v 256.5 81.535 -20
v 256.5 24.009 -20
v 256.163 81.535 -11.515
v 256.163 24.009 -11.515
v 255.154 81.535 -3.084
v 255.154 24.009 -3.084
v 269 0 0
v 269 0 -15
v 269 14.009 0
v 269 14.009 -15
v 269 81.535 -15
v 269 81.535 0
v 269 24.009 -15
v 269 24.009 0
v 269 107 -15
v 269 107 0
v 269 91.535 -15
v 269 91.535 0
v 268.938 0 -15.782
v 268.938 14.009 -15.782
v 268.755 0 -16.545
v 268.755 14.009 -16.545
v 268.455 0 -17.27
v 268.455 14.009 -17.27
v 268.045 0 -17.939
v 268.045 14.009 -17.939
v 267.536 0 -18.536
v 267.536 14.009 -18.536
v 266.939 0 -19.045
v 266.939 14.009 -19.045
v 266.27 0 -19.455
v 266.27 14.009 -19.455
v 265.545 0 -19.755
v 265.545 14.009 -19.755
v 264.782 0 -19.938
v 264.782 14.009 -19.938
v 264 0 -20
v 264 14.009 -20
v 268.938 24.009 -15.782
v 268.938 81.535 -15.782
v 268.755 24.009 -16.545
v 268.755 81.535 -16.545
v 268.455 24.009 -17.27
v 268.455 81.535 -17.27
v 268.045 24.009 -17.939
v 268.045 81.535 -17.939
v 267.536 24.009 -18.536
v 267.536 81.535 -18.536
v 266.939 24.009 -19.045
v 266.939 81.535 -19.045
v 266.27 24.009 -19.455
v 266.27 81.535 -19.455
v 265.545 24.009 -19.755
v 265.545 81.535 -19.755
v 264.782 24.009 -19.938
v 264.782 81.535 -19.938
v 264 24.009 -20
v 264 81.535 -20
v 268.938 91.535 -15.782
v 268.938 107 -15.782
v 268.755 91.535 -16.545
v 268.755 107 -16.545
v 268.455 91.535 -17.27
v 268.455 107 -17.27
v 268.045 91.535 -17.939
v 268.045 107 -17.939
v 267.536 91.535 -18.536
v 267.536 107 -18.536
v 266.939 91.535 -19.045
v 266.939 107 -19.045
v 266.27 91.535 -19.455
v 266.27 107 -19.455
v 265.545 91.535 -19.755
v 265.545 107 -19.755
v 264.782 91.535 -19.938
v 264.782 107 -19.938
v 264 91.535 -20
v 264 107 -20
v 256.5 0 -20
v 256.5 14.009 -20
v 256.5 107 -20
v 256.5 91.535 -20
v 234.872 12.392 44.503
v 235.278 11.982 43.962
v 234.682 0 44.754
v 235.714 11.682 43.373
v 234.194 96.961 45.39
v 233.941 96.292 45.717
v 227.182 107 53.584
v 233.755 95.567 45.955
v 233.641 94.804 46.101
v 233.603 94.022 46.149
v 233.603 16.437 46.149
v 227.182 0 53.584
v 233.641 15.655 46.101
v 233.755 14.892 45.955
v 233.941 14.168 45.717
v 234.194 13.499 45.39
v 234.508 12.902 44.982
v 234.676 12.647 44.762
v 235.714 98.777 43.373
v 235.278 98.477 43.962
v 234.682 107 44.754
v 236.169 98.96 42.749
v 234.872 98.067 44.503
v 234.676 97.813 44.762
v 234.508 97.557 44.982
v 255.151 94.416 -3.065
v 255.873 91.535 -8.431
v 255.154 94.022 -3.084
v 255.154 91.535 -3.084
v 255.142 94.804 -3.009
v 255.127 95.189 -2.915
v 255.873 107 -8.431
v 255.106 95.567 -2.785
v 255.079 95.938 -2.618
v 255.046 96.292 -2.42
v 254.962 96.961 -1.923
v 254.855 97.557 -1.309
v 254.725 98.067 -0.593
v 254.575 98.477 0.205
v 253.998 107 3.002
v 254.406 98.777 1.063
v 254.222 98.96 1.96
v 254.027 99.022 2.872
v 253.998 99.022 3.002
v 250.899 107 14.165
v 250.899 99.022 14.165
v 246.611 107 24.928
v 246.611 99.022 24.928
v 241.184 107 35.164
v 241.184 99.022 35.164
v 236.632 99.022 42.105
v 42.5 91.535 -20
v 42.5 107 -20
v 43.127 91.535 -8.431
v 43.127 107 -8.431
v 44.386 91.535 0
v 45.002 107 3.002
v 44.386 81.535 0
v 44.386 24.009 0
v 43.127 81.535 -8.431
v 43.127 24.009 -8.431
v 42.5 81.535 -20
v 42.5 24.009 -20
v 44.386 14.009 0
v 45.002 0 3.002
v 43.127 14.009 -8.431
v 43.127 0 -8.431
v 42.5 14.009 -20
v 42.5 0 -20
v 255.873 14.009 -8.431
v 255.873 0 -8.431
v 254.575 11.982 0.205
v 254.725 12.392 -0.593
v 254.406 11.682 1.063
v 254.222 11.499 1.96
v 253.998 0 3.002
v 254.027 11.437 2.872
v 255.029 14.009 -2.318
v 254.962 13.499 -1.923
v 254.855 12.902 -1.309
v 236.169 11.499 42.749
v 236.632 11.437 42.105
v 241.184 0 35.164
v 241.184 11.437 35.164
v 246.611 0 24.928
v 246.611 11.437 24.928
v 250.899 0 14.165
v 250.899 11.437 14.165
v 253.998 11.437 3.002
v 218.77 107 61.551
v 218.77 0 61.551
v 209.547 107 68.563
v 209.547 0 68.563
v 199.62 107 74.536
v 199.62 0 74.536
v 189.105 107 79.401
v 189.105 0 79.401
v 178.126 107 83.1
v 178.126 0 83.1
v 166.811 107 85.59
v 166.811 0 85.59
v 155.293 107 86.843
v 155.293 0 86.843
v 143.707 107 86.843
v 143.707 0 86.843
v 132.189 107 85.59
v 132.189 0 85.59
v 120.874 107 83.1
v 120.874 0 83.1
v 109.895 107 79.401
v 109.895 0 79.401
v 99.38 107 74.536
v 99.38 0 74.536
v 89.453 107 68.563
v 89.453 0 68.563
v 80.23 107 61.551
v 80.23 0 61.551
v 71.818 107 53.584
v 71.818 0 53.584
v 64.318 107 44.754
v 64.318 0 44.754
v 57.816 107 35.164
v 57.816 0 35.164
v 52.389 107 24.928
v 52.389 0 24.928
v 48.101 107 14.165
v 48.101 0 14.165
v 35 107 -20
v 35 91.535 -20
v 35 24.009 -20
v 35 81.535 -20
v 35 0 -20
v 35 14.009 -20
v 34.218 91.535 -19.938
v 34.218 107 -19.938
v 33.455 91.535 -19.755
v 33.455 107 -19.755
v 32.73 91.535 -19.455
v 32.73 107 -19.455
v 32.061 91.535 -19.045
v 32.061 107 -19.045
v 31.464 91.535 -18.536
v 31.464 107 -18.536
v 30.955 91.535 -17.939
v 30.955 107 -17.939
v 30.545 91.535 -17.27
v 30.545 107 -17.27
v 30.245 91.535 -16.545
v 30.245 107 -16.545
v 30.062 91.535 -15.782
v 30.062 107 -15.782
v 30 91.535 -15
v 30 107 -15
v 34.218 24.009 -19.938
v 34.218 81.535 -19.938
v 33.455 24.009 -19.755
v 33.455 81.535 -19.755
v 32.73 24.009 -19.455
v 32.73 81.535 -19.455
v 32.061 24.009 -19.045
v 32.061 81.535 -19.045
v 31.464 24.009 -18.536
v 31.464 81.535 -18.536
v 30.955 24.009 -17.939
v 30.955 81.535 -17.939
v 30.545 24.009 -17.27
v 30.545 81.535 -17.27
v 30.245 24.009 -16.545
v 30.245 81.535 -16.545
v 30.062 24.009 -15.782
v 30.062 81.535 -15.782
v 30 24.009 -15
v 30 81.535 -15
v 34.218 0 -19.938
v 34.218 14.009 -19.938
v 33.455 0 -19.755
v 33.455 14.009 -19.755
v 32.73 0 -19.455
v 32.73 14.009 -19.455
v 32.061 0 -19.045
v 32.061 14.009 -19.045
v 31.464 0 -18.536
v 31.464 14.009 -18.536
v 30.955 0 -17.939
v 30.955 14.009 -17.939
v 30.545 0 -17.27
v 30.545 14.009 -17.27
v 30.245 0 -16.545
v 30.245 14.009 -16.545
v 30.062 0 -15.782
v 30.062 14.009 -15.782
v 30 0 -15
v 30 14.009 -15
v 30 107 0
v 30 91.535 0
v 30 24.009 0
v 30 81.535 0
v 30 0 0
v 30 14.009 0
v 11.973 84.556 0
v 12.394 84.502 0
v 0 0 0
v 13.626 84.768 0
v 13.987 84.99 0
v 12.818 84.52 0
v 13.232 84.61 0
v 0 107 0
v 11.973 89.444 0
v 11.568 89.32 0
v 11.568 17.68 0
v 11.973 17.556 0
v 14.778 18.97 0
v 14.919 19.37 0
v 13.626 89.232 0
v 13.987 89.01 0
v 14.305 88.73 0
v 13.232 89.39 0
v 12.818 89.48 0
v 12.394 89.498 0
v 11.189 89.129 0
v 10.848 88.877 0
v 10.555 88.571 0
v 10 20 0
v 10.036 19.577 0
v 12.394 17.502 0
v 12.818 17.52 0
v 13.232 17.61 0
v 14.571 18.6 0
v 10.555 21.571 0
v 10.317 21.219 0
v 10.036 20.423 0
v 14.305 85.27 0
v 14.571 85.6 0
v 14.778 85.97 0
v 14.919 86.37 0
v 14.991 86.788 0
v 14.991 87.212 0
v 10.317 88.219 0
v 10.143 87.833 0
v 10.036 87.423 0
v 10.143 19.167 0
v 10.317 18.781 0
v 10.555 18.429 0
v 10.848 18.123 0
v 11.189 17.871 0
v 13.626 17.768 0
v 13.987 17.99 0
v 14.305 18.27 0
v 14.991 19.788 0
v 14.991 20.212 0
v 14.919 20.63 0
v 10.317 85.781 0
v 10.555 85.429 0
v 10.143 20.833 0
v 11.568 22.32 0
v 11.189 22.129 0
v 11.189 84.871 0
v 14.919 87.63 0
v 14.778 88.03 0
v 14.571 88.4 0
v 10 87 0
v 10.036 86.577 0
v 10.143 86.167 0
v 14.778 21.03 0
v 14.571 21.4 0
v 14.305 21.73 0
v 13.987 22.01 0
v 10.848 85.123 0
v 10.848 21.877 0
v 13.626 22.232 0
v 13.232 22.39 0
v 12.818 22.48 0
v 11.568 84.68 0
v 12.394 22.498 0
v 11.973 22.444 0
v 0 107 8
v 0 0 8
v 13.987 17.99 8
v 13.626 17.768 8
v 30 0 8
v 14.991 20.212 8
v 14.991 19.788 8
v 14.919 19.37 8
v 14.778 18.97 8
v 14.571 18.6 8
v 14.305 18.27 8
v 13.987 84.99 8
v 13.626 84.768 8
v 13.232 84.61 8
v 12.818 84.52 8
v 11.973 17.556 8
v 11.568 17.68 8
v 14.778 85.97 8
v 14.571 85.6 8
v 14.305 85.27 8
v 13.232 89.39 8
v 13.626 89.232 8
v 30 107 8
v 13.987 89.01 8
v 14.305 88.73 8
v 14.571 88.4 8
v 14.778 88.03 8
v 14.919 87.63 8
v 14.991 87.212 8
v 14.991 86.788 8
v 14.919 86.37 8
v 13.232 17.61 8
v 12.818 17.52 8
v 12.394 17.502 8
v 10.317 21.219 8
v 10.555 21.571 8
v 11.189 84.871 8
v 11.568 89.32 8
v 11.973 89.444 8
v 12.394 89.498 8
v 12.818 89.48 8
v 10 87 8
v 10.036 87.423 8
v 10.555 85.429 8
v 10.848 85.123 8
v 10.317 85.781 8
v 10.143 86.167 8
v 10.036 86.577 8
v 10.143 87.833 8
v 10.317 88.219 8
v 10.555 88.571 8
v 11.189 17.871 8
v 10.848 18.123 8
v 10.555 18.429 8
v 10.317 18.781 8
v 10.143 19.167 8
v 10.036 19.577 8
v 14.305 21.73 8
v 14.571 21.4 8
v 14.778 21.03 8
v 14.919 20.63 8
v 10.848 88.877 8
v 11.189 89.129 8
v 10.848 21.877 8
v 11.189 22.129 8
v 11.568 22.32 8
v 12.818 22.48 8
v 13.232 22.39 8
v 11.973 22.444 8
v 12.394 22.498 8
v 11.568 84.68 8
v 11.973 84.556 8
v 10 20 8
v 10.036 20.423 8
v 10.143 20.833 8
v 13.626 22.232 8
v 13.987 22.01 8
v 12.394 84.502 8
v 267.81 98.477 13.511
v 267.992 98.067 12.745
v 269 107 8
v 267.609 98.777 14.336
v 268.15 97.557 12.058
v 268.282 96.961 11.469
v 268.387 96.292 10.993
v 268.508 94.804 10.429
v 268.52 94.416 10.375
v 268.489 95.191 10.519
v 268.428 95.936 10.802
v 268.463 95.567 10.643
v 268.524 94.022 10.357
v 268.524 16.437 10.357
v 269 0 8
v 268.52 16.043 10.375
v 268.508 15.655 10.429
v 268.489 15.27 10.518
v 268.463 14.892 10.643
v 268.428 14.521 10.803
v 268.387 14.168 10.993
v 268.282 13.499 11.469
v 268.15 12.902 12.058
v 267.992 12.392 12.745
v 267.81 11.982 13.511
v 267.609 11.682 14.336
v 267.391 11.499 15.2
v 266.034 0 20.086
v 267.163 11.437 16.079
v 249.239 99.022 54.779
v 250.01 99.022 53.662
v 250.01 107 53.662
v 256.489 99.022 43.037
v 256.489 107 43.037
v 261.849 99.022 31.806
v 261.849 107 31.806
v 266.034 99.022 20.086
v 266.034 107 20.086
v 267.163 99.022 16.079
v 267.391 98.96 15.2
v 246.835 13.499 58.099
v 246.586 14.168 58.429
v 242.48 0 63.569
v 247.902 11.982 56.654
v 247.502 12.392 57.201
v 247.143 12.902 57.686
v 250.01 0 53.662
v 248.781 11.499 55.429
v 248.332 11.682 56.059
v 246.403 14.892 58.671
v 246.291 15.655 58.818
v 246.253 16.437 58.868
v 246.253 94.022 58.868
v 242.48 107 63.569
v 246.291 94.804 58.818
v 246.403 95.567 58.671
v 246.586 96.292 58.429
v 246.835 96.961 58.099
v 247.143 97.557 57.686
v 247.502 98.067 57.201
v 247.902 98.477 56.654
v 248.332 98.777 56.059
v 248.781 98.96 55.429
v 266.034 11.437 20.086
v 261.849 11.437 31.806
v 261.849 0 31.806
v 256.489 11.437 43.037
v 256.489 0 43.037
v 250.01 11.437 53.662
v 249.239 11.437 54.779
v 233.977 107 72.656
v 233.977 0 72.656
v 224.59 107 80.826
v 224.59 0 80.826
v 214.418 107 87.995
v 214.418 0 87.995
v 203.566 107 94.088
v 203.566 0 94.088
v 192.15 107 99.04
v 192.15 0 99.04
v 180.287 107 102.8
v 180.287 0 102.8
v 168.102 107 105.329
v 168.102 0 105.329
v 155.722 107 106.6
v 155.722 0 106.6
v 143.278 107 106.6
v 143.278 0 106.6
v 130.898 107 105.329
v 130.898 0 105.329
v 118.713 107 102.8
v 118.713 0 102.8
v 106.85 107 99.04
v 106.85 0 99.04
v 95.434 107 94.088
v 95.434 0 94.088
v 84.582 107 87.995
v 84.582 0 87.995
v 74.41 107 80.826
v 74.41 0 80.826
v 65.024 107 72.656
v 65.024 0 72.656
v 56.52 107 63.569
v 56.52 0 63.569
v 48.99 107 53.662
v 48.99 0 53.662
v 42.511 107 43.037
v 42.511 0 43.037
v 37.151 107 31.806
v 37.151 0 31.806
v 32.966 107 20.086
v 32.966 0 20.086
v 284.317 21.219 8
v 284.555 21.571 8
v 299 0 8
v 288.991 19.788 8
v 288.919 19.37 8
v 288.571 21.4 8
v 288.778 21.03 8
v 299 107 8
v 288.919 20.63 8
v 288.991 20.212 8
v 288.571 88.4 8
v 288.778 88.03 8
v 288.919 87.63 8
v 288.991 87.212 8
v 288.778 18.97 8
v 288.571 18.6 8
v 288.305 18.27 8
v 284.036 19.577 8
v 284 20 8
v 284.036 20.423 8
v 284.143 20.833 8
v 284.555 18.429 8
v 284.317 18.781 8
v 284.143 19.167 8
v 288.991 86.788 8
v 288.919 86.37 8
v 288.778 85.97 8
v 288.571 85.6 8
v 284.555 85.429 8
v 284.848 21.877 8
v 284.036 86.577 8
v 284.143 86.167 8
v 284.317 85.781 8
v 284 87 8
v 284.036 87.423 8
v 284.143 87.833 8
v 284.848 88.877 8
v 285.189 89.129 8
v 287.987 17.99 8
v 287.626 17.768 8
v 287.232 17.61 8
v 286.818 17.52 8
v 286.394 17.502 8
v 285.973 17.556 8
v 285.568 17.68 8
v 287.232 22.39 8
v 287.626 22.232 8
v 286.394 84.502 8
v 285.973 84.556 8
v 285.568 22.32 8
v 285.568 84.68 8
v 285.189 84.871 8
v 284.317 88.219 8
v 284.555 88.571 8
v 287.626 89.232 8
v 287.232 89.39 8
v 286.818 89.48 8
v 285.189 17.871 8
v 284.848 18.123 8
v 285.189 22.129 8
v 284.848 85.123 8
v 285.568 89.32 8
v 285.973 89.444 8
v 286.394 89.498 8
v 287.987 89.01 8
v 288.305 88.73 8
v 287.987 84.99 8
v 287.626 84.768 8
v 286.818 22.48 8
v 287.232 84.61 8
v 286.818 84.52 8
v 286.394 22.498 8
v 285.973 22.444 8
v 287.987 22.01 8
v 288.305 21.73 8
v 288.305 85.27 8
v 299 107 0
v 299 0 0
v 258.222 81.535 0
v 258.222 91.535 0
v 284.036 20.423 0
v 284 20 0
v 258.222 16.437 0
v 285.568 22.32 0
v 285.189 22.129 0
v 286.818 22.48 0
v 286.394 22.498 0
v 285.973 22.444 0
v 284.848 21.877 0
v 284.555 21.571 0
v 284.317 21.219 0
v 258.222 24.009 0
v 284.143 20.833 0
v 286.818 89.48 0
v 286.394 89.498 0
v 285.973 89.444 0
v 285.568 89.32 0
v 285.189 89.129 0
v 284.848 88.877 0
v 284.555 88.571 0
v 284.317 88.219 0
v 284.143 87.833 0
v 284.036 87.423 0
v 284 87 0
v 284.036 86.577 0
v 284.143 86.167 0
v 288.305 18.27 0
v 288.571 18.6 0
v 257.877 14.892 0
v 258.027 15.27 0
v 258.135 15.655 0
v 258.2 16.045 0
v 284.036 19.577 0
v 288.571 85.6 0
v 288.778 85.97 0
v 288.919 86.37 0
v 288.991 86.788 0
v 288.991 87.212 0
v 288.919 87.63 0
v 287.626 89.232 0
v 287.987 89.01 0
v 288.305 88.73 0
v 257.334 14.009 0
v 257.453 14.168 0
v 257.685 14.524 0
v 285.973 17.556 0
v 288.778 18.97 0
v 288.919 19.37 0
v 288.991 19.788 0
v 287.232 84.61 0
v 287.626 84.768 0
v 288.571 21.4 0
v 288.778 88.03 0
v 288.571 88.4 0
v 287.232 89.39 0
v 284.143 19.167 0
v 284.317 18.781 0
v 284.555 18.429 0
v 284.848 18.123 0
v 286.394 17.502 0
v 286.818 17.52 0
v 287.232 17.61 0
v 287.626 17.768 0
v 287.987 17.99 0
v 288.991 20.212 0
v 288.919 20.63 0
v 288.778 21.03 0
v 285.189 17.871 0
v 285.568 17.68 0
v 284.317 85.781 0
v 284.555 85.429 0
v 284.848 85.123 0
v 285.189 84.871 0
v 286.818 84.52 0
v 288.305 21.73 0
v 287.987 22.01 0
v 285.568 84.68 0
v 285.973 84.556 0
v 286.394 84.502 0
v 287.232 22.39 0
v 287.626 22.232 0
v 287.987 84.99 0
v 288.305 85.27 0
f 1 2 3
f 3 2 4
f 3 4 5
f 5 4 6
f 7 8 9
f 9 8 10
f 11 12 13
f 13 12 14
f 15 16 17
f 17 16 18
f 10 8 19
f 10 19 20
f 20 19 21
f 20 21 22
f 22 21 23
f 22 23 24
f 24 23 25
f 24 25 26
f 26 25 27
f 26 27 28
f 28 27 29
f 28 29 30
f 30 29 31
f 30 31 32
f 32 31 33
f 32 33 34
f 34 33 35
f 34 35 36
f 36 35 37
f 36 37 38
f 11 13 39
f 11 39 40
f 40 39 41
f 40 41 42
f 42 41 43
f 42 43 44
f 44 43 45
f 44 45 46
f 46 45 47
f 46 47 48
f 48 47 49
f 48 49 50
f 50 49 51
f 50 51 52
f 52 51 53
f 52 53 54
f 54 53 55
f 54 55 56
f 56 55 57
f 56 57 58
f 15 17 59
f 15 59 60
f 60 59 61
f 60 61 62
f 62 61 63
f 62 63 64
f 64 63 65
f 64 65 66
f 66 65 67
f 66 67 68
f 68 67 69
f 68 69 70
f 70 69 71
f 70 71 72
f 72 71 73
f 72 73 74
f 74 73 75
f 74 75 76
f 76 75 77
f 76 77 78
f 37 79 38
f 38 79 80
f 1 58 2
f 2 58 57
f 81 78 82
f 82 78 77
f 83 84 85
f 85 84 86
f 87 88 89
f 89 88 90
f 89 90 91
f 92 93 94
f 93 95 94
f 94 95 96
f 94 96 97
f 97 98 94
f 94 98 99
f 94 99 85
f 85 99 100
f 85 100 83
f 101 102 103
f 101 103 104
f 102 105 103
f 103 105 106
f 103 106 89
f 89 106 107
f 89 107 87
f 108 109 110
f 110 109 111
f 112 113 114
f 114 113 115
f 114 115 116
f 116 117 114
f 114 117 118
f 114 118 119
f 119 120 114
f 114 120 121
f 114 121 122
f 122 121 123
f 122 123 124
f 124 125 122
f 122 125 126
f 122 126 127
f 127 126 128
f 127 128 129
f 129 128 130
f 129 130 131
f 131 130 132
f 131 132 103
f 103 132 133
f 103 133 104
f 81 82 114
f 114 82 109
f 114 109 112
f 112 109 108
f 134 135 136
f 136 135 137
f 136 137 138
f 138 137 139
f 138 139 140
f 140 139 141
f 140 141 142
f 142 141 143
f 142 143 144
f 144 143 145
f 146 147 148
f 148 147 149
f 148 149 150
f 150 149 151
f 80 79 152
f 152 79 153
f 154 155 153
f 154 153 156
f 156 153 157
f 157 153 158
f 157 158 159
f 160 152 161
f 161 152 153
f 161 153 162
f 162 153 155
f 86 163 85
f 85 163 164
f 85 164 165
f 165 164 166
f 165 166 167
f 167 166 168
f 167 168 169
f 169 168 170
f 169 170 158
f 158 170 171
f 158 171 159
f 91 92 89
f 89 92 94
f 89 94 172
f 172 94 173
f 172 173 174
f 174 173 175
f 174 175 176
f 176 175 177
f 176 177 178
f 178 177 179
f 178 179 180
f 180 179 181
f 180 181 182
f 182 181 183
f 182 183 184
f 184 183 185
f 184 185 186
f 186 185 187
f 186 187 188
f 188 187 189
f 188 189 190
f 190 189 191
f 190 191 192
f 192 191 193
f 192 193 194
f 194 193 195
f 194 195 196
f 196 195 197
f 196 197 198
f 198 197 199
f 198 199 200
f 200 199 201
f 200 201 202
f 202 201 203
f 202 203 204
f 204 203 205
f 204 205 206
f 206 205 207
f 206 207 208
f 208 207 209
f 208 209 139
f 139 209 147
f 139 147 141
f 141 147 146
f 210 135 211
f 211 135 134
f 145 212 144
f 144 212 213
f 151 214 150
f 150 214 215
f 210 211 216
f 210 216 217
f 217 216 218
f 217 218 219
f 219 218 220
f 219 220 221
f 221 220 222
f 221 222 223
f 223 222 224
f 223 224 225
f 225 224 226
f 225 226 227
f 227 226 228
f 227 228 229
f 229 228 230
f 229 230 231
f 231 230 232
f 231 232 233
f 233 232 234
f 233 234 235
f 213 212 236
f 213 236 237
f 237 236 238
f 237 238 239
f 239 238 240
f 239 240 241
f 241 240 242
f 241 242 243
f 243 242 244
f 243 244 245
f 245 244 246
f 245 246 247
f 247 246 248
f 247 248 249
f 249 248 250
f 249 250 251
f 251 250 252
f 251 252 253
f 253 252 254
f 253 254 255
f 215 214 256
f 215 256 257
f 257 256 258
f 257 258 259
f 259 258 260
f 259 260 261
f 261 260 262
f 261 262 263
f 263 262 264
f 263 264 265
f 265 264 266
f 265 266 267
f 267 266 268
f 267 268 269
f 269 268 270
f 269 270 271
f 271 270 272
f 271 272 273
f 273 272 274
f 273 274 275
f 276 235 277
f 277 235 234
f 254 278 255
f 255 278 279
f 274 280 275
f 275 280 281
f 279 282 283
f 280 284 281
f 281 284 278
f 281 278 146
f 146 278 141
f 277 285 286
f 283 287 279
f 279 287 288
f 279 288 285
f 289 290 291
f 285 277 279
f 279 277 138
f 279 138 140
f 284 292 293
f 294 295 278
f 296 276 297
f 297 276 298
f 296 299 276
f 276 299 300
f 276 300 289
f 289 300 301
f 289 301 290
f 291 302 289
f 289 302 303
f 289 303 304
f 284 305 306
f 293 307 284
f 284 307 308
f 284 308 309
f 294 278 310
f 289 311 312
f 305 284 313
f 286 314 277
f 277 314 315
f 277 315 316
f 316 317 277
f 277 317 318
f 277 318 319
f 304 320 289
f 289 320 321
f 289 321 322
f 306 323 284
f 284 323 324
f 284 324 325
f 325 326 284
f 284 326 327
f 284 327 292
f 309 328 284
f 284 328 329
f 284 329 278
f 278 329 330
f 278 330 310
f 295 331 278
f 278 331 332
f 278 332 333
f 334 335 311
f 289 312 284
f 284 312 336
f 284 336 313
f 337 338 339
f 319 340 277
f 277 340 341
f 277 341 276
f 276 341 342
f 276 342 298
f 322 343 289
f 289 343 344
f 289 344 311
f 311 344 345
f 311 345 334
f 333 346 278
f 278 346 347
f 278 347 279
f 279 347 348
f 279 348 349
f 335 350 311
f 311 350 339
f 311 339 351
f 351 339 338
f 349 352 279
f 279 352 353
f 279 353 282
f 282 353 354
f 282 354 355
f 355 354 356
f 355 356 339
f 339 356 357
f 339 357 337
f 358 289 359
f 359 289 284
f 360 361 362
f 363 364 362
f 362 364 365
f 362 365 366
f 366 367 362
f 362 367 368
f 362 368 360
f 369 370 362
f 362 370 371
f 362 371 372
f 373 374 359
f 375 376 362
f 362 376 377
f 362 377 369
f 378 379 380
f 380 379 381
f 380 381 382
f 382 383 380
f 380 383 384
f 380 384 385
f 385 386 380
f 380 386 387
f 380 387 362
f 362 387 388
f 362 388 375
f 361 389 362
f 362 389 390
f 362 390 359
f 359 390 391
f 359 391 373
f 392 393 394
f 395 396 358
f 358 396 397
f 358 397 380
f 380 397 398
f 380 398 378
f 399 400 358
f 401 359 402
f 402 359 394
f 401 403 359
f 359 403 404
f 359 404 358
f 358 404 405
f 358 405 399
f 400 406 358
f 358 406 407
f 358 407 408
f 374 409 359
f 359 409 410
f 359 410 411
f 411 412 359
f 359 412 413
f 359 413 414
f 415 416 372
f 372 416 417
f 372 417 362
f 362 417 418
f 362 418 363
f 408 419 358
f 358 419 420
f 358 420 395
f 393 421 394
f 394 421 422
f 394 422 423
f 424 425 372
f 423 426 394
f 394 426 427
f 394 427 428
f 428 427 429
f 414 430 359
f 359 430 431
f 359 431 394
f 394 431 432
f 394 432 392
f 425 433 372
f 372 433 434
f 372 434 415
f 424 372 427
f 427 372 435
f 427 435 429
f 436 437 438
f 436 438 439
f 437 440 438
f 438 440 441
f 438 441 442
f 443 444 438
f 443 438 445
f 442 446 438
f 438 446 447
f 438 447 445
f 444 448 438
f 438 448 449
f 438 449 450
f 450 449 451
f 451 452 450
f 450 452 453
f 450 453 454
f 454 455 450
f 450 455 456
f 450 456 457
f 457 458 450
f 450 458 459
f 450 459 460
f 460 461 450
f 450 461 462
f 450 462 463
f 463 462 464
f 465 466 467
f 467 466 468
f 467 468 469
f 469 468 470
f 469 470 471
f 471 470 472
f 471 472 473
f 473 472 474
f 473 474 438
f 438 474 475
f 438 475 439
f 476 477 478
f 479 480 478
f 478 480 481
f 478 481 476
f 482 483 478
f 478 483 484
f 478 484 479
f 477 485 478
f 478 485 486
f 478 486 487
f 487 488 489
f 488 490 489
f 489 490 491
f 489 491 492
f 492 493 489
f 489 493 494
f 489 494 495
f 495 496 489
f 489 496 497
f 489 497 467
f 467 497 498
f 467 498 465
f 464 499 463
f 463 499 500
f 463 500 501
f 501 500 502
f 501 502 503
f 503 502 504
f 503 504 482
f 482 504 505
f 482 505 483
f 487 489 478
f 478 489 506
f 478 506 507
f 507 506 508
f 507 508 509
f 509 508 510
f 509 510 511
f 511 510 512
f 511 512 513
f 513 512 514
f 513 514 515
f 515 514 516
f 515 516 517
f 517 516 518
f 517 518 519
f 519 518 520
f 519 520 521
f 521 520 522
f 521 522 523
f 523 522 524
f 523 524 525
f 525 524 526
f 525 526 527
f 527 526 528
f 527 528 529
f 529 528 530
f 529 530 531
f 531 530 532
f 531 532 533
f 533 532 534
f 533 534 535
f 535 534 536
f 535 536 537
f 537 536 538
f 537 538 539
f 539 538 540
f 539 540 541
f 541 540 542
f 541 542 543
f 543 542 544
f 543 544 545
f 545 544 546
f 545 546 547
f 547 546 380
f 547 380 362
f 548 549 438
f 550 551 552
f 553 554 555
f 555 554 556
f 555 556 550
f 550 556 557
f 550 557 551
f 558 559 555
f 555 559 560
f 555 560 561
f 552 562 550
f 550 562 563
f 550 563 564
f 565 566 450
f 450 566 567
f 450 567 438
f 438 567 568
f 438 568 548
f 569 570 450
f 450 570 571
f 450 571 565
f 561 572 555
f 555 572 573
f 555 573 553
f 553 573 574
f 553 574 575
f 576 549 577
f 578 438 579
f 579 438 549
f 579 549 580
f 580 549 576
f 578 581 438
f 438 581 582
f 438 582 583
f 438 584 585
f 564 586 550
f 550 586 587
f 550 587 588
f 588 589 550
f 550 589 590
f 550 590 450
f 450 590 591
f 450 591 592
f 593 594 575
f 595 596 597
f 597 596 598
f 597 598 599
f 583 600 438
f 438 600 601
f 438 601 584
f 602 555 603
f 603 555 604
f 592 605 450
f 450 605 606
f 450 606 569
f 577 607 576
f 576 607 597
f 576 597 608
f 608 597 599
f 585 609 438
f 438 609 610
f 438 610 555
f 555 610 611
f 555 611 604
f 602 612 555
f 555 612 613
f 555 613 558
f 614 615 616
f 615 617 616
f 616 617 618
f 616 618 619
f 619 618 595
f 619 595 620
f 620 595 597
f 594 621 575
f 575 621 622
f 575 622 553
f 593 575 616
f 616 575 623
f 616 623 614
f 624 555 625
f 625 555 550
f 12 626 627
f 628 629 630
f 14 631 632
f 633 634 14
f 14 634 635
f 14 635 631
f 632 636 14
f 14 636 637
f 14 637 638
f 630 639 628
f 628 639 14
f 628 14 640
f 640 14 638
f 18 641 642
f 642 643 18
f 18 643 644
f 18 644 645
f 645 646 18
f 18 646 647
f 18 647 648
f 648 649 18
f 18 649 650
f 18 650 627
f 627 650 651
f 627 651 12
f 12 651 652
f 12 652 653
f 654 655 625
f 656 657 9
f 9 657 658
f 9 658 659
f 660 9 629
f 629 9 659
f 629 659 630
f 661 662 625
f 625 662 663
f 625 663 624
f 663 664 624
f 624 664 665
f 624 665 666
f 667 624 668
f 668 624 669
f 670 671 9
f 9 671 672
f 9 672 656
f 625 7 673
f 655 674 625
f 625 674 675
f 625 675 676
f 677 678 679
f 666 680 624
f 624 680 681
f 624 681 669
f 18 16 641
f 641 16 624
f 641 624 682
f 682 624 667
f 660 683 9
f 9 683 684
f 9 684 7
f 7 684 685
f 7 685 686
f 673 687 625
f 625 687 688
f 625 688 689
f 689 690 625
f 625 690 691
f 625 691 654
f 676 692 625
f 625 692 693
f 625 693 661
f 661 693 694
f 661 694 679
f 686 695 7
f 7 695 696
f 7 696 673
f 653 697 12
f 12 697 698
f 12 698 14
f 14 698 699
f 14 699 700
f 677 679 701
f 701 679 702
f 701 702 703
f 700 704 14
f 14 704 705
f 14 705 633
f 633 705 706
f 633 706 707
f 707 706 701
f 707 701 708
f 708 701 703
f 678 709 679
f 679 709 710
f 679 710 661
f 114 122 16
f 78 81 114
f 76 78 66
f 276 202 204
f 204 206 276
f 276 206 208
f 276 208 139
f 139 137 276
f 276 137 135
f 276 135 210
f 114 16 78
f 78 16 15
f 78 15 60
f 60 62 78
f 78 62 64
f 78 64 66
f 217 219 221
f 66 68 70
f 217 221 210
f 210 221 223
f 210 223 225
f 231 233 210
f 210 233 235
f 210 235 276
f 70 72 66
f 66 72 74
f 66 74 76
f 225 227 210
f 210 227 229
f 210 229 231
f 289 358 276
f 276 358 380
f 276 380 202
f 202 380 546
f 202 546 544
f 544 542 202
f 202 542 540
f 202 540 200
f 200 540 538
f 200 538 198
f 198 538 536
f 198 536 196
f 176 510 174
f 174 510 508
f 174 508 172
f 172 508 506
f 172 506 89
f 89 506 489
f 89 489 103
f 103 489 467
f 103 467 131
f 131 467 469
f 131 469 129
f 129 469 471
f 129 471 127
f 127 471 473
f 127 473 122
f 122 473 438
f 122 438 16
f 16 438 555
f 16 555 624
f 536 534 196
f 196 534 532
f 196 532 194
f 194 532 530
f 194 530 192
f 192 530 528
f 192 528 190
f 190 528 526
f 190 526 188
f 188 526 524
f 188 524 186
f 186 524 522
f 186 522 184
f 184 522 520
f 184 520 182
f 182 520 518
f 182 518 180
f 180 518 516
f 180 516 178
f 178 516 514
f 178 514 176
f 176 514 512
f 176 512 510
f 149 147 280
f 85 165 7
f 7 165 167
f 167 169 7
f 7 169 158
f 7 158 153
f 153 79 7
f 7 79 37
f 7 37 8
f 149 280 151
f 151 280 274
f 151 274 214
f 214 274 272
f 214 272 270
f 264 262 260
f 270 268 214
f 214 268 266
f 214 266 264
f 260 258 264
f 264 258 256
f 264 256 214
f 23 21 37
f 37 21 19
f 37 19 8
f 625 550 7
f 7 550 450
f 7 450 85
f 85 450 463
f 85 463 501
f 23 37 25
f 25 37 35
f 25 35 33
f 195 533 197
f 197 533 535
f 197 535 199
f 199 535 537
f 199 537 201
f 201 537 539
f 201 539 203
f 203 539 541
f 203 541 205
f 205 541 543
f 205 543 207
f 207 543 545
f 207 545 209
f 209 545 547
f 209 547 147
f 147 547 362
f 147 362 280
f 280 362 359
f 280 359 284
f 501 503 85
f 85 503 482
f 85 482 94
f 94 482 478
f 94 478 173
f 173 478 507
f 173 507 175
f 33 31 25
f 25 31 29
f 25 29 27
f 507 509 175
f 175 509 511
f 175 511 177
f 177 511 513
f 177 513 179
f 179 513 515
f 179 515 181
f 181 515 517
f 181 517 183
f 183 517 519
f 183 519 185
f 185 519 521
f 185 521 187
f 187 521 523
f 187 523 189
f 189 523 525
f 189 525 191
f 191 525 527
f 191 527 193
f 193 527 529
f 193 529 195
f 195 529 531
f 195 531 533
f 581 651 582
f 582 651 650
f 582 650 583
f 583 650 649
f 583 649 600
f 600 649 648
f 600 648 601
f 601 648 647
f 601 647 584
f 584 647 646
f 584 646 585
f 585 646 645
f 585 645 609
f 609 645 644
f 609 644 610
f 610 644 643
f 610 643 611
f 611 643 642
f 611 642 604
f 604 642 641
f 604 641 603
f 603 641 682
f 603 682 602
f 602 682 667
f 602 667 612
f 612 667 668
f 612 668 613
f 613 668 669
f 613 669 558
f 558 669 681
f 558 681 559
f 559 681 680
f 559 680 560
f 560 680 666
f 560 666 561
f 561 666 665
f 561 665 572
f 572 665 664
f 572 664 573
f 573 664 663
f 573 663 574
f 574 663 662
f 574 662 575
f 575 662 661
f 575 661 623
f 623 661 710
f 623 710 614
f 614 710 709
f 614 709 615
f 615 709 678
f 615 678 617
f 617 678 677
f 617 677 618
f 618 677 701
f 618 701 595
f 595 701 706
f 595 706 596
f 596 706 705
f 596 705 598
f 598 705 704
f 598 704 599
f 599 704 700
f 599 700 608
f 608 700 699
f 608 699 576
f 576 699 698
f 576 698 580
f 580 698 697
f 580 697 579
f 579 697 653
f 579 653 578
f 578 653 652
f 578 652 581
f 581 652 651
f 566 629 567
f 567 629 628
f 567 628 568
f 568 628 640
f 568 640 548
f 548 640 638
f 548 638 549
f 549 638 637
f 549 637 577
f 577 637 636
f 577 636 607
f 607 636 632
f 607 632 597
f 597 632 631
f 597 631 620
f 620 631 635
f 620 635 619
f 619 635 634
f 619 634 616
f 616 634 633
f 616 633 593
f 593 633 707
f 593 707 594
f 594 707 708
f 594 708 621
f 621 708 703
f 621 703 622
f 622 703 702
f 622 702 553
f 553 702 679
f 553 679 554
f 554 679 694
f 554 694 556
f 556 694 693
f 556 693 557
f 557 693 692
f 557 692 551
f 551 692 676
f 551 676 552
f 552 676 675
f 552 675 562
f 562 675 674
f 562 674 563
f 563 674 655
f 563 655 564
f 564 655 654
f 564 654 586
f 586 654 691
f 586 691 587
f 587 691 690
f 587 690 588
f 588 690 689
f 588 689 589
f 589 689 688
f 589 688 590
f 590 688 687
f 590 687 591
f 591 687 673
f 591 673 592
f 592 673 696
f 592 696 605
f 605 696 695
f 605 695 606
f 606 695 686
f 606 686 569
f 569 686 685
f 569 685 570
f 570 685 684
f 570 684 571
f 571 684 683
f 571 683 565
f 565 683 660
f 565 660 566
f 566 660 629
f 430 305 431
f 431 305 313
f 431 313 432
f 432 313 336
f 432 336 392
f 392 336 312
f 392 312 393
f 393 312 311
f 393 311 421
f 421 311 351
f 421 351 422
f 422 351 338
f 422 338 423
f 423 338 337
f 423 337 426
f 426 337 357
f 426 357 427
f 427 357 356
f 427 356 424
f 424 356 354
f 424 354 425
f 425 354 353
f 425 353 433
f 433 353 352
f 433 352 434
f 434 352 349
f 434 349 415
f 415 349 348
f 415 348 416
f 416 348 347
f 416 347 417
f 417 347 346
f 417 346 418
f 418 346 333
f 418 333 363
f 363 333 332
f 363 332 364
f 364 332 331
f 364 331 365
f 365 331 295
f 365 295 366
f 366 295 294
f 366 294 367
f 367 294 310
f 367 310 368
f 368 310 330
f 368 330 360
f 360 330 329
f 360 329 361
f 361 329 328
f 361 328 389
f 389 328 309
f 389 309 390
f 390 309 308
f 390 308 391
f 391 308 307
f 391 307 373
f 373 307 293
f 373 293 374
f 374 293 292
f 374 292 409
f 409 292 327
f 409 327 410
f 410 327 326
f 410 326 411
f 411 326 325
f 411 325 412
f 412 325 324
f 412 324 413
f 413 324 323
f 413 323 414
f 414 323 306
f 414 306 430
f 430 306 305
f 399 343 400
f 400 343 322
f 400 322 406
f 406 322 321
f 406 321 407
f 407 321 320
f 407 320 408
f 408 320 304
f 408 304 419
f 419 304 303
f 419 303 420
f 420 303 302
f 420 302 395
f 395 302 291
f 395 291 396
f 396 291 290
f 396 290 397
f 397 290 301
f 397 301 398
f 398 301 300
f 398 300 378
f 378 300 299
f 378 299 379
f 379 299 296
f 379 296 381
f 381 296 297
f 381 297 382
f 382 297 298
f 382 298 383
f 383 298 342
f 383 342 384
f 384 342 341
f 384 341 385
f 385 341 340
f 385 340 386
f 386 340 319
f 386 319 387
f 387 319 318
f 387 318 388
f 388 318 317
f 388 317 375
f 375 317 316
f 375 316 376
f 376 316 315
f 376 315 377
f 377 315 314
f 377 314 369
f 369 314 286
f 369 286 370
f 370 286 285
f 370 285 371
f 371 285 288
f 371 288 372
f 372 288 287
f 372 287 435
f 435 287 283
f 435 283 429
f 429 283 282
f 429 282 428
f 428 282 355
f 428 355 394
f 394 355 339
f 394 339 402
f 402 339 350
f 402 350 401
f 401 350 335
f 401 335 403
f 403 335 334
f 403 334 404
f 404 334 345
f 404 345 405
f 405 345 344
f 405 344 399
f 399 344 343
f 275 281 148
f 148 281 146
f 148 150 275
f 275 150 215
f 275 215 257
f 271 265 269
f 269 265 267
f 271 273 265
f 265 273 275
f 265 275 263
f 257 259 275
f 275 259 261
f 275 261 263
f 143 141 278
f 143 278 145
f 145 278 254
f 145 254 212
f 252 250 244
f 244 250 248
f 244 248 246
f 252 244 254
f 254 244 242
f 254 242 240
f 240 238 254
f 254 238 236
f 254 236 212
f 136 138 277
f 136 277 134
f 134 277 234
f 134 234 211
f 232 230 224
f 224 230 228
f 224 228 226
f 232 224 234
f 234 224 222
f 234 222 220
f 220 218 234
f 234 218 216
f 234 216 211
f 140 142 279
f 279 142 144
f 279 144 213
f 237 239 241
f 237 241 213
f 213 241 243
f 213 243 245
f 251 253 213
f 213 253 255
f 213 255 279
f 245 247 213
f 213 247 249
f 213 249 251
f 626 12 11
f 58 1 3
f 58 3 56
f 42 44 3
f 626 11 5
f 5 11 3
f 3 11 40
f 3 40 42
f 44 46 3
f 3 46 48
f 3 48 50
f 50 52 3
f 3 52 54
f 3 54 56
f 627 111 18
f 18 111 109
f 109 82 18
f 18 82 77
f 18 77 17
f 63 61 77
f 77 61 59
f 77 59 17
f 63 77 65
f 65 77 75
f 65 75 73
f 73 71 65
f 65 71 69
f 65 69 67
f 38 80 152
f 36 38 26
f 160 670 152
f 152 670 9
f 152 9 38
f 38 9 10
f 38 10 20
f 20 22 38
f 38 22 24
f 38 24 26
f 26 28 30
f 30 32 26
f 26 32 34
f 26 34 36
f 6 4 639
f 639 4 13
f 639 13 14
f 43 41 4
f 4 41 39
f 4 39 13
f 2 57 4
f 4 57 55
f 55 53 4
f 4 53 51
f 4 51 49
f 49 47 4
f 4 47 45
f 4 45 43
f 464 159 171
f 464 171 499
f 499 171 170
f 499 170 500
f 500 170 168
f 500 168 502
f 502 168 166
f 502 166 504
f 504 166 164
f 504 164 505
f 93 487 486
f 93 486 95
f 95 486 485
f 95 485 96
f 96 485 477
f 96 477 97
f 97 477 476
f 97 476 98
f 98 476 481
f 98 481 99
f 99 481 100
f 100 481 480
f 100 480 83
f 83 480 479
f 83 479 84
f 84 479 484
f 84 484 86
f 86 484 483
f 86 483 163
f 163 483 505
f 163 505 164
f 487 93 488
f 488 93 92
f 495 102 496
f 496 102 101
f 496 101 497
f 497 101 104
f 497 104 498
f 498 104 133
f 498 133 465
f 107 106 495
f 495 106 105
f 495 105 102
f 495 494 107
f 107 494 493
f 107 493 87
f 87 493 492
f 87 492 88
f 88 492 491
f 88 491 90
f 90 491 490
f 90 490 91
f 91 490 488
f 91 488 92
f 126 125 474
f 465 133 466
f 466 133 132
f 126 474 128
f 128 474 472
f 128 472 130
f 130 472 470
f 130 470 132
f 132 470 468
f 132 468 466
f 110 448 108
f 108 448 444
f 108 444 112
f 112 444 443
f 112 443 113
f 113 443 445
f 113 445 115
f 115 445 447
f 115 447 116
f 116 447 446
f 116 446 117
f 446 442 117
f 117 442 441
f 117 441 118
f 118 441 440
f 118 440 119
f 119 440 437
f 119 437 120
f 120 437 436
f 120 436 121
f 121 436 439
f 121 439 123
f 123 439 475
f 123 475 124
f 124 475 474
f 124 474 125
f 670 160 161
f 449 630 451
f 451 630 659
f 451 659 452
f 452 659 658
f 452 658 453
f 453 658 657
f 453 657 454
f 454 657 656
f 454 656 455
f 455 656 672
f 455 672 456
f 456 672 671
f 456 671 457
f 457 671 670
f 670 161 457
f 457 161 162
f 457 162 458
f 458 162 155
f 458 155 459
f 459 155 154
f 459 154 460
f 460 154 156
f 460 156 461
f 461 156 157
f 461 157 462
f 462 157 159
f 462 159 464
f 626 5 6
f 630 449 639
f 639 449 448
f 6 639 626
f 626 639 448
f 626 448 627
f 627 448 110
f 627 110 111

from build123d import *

# Parameters (mm, degrees)
BOSS_EXTRUDE1_DEPTH     = 107
SKETCH2_R               = 2.5
CUT_EXTRUDE1_DEPTH      = 336.0337743
CUT_EXTRUDE4_REACH      = 337.034
SKETCH5_W               = 15.542799326
SKETCH5_H               = 10
SKETCH5_W_2             = 18.63674205
CUT_EXTRUDE5_DEPTH      = 255.70554643
CUT_EXTRUDE5_DEPTH_BACK = 255.70554643


with BuildPart() as part:
    # Sketch1 → Boss-Extrude1 (new body)
    with BuildSketch(Plane(origin=(0, 0, 0), x_dir=(1, 0, 0), z_dir=(0, 1, 0))):
        with BuildLine():
            Line((0, 0), (0, -8))
            Line((0, -8), (30, -8))
            ThreePointArc((30, -8), (149.5, -106.759683035), (269, -8))
            Line((269, -8), (299, -8))
            Line((299, -8), (299, 0))
            Line((299, 0), (269, 0))
            Line((269, 0), (269, 15))
            ThreePointArc((269, 15), (267.535533906, 18.535533906), (264, 20))
            Line((264, 20), (256.5, 20))
            ThreePointArc((256.5, 20), (149.5, -87.000008561), (42.5, 20))
            Line((42.5, 20), (35, 20))
            ThreePointArc((35, 20), (31.464466094, 18.535533906), (30, 15))
            Line((30, 15), (30, 0))
            Line((30, 0), (0, 0))
        make_face()
    extrude(amount=BOSS_EXTRUDE1_DEPTH)

    # Sketch2 → Cut-Extrude1 (cut, through all)
    with BuildSketch(Plane(origin=(0, 0, 0), x_dir=(-1, 0, 0), z_dir=(0, 0, -1))):
        with Locations((-286.5, 87)):
            Circle(SKETCH2_R)
        with Locations((-286.5, 20)):
            Circle(SKETCH2_R)
        with Locations((-12.5, 87)):
            Circle(SKETCH2_R)
        with Locations((-12.5, 20)):
            Circle(SKETCH2_R)
    extrude(amount=-CUT_EXTRUDE1_DEPTH, mode=Mode.SUBTRACT)

    # Cut-Extrude4: up to this face of the body (flat: up to its plane)
    cut_extrude4_end = Plane(part.part.faces().sort_by_distance((260.25, 53.5, -20))[0])
    # Sketch5 → Cut-Extrude4 (cut, up to the picked face)
    with BuildSketch(Plane(origin=(0, 0, 0), x_dir=(-1, 0, 0), z_dir=(0, 0, -1)), mode=Mode.PRIVATE) as cut_extrude4_sk1:
        with Locations((-261.228600337, 86.535453814)):
            Rectangle(SKETCH5_W, SKETCH5_H)
    cut_extrude4_tool1 = split(extrude(cut_extrude4_sk1.sketch, amount=CUT_EXTRUDE4_REACH, mode=Mode.PRIVATE), bisect_by=cut_extrude4_end, keep=Keep.BOTH, mode=Mode.PRIVATE)
    # Sketch5 → Cut-Extrude4 (cut, up to the picked face)
    with BuildSketch(Plane(origin=(0, 0, 0), x_dir=(-1, 0, 0), z_dir=(0, 0, -1)), mode=Mode.PRIVATE) as cut_extrude4_sk2:
        with Locations((-259.681628975, 19.008712967)):
            Rectangle(SKETCH5_W_2, SKETCH5_H)
    cut_extrude4_tool2 = split(extrude(cut_extrude4_sk2.sketch, amount=CUT_EXTRUDE4_REACH, mode=Mode.PRIVATE), bisect_by=cut_extrude4_end, keep=Keep.BOTH, mode=Mode.PRIVATE)
    # Sketch5 → Cut-Extrude4 (cut, up to the picked face)
    with BuildSketch(Plane(origin=(0, 0, 0), x_dir=(-1, 0, 0), z_dir=(0, 0, -1)), mode=Mode.PRIVATE) as cut_extrude4_sk3:
        with Locations((-39.318371025, 19.008712967)):
            Rectangle(SKETCH5_W_2, SKETCH5_H)
    cut_extrude4_tool3 = split(extrude(cut_extrude4_sk3.sketch, amount=CUT_EXTRUDE4_REACH, mode=Mode.PRIVATE), bisect_by=cut_extrude4_end, keep=Keep.BOTH, mode=Mode.PRIVATE)
    # Sketch5 → Cut-Extrude4 (cut, up to the picked face)
    with BuildSketch(Plane(origin=(0, 0, 0), x_dir=(-1, 0, 0), z_dir=(0, 0, -1)), mode=Mode.PRIVATE) as cut_extrude4_sk4:
        with Locations((-37.771399663, 86.535453814)):
            Rectangle(SKETCH5_W, SKETCH5_H)
    cut_extrude4_tool4 = split(extrude(cut_extrude4_sk4.sketch, amount=CUT_EXTRUDE4_REACH, mode=Mode.PRIVATE), bisect_by=cut_extrude4_end, keep=Keep.BOTH, mode=Mode.PRIVATE)
    add(cut_extrude4_tool1.solids().sort_by(Axis((261.2286, 86.535454, 0), (0, 0, -1)))[0], mode=Mode.SUBTRACT)
    add(cut_extrude4_tool2.solids().sort_by(Axis((259.681629, 19.008713, 0), (0, 0, -1)))[0], mode=Mode.SUBTRACT)
    add(cut_extrude4_tool3.solids().sort_by(Axis((39.318371, 19.008713, 0), (0, 0, -1)))[0], mode=Mode.SUBTRACT)
    add(cut_extrude4_tool4.solids().sort_by(Axis((37.7714, 86.535454, 0), (0, 0, -1)))[0], mode=Mode.SUBTRACT)

    # Sketch8 → Cut-Extrude5 (cut, two sides: drawn at the far end of the back side and taken through both)
    with BuildSketch(Plane(origin=(152.698962186, 0, 153.519285181), x_dir=(0.7089984938103423, 0, -0.7052099940972661), z_dir=(0.7052099940972661, 0, 0.7089984938103423)).offset(-CUT_EXTRUDE5_DEPTH_BACK)):
        with BuildLine():
            Line((138.078914882, 99.021927615), (178.078914882, 99.021927615))
            ThreePointArc((178.078914882, 99.021927615), (181.614448788, 97.557461521), (183.078914882, 94.021927615))
            Line((183.078914882, 94.021927615), (183.078914882, 16.437469362))
            ThreePointArc((183.078914882, 16.437469362), (181.614448788, 12.901935456), (178.078914882, 11.437469362))
            Line((178.078914882, 11.437469362), (138.078914882, 11.437469362))
            ThreePointArc((138.078914882, 11.437469362), (134.543380976, 12.901935456), (133.078914882, 16.437469362))
            Line((133.078914882, 16.437469362), (133.078914882, 94.021927615))
            ThreePointArc((133.078914882, 94.021927615), (134.543380976, 97.557461521), (138.078914882, 99.021927615))
        make_face()
    extrude(amount=CUT_EXTRUDE5_DEPTH + CUT_EXTRUDE5_DEPTH_BACK, mode=Mode.SUBTRACT)


solid = part.part
